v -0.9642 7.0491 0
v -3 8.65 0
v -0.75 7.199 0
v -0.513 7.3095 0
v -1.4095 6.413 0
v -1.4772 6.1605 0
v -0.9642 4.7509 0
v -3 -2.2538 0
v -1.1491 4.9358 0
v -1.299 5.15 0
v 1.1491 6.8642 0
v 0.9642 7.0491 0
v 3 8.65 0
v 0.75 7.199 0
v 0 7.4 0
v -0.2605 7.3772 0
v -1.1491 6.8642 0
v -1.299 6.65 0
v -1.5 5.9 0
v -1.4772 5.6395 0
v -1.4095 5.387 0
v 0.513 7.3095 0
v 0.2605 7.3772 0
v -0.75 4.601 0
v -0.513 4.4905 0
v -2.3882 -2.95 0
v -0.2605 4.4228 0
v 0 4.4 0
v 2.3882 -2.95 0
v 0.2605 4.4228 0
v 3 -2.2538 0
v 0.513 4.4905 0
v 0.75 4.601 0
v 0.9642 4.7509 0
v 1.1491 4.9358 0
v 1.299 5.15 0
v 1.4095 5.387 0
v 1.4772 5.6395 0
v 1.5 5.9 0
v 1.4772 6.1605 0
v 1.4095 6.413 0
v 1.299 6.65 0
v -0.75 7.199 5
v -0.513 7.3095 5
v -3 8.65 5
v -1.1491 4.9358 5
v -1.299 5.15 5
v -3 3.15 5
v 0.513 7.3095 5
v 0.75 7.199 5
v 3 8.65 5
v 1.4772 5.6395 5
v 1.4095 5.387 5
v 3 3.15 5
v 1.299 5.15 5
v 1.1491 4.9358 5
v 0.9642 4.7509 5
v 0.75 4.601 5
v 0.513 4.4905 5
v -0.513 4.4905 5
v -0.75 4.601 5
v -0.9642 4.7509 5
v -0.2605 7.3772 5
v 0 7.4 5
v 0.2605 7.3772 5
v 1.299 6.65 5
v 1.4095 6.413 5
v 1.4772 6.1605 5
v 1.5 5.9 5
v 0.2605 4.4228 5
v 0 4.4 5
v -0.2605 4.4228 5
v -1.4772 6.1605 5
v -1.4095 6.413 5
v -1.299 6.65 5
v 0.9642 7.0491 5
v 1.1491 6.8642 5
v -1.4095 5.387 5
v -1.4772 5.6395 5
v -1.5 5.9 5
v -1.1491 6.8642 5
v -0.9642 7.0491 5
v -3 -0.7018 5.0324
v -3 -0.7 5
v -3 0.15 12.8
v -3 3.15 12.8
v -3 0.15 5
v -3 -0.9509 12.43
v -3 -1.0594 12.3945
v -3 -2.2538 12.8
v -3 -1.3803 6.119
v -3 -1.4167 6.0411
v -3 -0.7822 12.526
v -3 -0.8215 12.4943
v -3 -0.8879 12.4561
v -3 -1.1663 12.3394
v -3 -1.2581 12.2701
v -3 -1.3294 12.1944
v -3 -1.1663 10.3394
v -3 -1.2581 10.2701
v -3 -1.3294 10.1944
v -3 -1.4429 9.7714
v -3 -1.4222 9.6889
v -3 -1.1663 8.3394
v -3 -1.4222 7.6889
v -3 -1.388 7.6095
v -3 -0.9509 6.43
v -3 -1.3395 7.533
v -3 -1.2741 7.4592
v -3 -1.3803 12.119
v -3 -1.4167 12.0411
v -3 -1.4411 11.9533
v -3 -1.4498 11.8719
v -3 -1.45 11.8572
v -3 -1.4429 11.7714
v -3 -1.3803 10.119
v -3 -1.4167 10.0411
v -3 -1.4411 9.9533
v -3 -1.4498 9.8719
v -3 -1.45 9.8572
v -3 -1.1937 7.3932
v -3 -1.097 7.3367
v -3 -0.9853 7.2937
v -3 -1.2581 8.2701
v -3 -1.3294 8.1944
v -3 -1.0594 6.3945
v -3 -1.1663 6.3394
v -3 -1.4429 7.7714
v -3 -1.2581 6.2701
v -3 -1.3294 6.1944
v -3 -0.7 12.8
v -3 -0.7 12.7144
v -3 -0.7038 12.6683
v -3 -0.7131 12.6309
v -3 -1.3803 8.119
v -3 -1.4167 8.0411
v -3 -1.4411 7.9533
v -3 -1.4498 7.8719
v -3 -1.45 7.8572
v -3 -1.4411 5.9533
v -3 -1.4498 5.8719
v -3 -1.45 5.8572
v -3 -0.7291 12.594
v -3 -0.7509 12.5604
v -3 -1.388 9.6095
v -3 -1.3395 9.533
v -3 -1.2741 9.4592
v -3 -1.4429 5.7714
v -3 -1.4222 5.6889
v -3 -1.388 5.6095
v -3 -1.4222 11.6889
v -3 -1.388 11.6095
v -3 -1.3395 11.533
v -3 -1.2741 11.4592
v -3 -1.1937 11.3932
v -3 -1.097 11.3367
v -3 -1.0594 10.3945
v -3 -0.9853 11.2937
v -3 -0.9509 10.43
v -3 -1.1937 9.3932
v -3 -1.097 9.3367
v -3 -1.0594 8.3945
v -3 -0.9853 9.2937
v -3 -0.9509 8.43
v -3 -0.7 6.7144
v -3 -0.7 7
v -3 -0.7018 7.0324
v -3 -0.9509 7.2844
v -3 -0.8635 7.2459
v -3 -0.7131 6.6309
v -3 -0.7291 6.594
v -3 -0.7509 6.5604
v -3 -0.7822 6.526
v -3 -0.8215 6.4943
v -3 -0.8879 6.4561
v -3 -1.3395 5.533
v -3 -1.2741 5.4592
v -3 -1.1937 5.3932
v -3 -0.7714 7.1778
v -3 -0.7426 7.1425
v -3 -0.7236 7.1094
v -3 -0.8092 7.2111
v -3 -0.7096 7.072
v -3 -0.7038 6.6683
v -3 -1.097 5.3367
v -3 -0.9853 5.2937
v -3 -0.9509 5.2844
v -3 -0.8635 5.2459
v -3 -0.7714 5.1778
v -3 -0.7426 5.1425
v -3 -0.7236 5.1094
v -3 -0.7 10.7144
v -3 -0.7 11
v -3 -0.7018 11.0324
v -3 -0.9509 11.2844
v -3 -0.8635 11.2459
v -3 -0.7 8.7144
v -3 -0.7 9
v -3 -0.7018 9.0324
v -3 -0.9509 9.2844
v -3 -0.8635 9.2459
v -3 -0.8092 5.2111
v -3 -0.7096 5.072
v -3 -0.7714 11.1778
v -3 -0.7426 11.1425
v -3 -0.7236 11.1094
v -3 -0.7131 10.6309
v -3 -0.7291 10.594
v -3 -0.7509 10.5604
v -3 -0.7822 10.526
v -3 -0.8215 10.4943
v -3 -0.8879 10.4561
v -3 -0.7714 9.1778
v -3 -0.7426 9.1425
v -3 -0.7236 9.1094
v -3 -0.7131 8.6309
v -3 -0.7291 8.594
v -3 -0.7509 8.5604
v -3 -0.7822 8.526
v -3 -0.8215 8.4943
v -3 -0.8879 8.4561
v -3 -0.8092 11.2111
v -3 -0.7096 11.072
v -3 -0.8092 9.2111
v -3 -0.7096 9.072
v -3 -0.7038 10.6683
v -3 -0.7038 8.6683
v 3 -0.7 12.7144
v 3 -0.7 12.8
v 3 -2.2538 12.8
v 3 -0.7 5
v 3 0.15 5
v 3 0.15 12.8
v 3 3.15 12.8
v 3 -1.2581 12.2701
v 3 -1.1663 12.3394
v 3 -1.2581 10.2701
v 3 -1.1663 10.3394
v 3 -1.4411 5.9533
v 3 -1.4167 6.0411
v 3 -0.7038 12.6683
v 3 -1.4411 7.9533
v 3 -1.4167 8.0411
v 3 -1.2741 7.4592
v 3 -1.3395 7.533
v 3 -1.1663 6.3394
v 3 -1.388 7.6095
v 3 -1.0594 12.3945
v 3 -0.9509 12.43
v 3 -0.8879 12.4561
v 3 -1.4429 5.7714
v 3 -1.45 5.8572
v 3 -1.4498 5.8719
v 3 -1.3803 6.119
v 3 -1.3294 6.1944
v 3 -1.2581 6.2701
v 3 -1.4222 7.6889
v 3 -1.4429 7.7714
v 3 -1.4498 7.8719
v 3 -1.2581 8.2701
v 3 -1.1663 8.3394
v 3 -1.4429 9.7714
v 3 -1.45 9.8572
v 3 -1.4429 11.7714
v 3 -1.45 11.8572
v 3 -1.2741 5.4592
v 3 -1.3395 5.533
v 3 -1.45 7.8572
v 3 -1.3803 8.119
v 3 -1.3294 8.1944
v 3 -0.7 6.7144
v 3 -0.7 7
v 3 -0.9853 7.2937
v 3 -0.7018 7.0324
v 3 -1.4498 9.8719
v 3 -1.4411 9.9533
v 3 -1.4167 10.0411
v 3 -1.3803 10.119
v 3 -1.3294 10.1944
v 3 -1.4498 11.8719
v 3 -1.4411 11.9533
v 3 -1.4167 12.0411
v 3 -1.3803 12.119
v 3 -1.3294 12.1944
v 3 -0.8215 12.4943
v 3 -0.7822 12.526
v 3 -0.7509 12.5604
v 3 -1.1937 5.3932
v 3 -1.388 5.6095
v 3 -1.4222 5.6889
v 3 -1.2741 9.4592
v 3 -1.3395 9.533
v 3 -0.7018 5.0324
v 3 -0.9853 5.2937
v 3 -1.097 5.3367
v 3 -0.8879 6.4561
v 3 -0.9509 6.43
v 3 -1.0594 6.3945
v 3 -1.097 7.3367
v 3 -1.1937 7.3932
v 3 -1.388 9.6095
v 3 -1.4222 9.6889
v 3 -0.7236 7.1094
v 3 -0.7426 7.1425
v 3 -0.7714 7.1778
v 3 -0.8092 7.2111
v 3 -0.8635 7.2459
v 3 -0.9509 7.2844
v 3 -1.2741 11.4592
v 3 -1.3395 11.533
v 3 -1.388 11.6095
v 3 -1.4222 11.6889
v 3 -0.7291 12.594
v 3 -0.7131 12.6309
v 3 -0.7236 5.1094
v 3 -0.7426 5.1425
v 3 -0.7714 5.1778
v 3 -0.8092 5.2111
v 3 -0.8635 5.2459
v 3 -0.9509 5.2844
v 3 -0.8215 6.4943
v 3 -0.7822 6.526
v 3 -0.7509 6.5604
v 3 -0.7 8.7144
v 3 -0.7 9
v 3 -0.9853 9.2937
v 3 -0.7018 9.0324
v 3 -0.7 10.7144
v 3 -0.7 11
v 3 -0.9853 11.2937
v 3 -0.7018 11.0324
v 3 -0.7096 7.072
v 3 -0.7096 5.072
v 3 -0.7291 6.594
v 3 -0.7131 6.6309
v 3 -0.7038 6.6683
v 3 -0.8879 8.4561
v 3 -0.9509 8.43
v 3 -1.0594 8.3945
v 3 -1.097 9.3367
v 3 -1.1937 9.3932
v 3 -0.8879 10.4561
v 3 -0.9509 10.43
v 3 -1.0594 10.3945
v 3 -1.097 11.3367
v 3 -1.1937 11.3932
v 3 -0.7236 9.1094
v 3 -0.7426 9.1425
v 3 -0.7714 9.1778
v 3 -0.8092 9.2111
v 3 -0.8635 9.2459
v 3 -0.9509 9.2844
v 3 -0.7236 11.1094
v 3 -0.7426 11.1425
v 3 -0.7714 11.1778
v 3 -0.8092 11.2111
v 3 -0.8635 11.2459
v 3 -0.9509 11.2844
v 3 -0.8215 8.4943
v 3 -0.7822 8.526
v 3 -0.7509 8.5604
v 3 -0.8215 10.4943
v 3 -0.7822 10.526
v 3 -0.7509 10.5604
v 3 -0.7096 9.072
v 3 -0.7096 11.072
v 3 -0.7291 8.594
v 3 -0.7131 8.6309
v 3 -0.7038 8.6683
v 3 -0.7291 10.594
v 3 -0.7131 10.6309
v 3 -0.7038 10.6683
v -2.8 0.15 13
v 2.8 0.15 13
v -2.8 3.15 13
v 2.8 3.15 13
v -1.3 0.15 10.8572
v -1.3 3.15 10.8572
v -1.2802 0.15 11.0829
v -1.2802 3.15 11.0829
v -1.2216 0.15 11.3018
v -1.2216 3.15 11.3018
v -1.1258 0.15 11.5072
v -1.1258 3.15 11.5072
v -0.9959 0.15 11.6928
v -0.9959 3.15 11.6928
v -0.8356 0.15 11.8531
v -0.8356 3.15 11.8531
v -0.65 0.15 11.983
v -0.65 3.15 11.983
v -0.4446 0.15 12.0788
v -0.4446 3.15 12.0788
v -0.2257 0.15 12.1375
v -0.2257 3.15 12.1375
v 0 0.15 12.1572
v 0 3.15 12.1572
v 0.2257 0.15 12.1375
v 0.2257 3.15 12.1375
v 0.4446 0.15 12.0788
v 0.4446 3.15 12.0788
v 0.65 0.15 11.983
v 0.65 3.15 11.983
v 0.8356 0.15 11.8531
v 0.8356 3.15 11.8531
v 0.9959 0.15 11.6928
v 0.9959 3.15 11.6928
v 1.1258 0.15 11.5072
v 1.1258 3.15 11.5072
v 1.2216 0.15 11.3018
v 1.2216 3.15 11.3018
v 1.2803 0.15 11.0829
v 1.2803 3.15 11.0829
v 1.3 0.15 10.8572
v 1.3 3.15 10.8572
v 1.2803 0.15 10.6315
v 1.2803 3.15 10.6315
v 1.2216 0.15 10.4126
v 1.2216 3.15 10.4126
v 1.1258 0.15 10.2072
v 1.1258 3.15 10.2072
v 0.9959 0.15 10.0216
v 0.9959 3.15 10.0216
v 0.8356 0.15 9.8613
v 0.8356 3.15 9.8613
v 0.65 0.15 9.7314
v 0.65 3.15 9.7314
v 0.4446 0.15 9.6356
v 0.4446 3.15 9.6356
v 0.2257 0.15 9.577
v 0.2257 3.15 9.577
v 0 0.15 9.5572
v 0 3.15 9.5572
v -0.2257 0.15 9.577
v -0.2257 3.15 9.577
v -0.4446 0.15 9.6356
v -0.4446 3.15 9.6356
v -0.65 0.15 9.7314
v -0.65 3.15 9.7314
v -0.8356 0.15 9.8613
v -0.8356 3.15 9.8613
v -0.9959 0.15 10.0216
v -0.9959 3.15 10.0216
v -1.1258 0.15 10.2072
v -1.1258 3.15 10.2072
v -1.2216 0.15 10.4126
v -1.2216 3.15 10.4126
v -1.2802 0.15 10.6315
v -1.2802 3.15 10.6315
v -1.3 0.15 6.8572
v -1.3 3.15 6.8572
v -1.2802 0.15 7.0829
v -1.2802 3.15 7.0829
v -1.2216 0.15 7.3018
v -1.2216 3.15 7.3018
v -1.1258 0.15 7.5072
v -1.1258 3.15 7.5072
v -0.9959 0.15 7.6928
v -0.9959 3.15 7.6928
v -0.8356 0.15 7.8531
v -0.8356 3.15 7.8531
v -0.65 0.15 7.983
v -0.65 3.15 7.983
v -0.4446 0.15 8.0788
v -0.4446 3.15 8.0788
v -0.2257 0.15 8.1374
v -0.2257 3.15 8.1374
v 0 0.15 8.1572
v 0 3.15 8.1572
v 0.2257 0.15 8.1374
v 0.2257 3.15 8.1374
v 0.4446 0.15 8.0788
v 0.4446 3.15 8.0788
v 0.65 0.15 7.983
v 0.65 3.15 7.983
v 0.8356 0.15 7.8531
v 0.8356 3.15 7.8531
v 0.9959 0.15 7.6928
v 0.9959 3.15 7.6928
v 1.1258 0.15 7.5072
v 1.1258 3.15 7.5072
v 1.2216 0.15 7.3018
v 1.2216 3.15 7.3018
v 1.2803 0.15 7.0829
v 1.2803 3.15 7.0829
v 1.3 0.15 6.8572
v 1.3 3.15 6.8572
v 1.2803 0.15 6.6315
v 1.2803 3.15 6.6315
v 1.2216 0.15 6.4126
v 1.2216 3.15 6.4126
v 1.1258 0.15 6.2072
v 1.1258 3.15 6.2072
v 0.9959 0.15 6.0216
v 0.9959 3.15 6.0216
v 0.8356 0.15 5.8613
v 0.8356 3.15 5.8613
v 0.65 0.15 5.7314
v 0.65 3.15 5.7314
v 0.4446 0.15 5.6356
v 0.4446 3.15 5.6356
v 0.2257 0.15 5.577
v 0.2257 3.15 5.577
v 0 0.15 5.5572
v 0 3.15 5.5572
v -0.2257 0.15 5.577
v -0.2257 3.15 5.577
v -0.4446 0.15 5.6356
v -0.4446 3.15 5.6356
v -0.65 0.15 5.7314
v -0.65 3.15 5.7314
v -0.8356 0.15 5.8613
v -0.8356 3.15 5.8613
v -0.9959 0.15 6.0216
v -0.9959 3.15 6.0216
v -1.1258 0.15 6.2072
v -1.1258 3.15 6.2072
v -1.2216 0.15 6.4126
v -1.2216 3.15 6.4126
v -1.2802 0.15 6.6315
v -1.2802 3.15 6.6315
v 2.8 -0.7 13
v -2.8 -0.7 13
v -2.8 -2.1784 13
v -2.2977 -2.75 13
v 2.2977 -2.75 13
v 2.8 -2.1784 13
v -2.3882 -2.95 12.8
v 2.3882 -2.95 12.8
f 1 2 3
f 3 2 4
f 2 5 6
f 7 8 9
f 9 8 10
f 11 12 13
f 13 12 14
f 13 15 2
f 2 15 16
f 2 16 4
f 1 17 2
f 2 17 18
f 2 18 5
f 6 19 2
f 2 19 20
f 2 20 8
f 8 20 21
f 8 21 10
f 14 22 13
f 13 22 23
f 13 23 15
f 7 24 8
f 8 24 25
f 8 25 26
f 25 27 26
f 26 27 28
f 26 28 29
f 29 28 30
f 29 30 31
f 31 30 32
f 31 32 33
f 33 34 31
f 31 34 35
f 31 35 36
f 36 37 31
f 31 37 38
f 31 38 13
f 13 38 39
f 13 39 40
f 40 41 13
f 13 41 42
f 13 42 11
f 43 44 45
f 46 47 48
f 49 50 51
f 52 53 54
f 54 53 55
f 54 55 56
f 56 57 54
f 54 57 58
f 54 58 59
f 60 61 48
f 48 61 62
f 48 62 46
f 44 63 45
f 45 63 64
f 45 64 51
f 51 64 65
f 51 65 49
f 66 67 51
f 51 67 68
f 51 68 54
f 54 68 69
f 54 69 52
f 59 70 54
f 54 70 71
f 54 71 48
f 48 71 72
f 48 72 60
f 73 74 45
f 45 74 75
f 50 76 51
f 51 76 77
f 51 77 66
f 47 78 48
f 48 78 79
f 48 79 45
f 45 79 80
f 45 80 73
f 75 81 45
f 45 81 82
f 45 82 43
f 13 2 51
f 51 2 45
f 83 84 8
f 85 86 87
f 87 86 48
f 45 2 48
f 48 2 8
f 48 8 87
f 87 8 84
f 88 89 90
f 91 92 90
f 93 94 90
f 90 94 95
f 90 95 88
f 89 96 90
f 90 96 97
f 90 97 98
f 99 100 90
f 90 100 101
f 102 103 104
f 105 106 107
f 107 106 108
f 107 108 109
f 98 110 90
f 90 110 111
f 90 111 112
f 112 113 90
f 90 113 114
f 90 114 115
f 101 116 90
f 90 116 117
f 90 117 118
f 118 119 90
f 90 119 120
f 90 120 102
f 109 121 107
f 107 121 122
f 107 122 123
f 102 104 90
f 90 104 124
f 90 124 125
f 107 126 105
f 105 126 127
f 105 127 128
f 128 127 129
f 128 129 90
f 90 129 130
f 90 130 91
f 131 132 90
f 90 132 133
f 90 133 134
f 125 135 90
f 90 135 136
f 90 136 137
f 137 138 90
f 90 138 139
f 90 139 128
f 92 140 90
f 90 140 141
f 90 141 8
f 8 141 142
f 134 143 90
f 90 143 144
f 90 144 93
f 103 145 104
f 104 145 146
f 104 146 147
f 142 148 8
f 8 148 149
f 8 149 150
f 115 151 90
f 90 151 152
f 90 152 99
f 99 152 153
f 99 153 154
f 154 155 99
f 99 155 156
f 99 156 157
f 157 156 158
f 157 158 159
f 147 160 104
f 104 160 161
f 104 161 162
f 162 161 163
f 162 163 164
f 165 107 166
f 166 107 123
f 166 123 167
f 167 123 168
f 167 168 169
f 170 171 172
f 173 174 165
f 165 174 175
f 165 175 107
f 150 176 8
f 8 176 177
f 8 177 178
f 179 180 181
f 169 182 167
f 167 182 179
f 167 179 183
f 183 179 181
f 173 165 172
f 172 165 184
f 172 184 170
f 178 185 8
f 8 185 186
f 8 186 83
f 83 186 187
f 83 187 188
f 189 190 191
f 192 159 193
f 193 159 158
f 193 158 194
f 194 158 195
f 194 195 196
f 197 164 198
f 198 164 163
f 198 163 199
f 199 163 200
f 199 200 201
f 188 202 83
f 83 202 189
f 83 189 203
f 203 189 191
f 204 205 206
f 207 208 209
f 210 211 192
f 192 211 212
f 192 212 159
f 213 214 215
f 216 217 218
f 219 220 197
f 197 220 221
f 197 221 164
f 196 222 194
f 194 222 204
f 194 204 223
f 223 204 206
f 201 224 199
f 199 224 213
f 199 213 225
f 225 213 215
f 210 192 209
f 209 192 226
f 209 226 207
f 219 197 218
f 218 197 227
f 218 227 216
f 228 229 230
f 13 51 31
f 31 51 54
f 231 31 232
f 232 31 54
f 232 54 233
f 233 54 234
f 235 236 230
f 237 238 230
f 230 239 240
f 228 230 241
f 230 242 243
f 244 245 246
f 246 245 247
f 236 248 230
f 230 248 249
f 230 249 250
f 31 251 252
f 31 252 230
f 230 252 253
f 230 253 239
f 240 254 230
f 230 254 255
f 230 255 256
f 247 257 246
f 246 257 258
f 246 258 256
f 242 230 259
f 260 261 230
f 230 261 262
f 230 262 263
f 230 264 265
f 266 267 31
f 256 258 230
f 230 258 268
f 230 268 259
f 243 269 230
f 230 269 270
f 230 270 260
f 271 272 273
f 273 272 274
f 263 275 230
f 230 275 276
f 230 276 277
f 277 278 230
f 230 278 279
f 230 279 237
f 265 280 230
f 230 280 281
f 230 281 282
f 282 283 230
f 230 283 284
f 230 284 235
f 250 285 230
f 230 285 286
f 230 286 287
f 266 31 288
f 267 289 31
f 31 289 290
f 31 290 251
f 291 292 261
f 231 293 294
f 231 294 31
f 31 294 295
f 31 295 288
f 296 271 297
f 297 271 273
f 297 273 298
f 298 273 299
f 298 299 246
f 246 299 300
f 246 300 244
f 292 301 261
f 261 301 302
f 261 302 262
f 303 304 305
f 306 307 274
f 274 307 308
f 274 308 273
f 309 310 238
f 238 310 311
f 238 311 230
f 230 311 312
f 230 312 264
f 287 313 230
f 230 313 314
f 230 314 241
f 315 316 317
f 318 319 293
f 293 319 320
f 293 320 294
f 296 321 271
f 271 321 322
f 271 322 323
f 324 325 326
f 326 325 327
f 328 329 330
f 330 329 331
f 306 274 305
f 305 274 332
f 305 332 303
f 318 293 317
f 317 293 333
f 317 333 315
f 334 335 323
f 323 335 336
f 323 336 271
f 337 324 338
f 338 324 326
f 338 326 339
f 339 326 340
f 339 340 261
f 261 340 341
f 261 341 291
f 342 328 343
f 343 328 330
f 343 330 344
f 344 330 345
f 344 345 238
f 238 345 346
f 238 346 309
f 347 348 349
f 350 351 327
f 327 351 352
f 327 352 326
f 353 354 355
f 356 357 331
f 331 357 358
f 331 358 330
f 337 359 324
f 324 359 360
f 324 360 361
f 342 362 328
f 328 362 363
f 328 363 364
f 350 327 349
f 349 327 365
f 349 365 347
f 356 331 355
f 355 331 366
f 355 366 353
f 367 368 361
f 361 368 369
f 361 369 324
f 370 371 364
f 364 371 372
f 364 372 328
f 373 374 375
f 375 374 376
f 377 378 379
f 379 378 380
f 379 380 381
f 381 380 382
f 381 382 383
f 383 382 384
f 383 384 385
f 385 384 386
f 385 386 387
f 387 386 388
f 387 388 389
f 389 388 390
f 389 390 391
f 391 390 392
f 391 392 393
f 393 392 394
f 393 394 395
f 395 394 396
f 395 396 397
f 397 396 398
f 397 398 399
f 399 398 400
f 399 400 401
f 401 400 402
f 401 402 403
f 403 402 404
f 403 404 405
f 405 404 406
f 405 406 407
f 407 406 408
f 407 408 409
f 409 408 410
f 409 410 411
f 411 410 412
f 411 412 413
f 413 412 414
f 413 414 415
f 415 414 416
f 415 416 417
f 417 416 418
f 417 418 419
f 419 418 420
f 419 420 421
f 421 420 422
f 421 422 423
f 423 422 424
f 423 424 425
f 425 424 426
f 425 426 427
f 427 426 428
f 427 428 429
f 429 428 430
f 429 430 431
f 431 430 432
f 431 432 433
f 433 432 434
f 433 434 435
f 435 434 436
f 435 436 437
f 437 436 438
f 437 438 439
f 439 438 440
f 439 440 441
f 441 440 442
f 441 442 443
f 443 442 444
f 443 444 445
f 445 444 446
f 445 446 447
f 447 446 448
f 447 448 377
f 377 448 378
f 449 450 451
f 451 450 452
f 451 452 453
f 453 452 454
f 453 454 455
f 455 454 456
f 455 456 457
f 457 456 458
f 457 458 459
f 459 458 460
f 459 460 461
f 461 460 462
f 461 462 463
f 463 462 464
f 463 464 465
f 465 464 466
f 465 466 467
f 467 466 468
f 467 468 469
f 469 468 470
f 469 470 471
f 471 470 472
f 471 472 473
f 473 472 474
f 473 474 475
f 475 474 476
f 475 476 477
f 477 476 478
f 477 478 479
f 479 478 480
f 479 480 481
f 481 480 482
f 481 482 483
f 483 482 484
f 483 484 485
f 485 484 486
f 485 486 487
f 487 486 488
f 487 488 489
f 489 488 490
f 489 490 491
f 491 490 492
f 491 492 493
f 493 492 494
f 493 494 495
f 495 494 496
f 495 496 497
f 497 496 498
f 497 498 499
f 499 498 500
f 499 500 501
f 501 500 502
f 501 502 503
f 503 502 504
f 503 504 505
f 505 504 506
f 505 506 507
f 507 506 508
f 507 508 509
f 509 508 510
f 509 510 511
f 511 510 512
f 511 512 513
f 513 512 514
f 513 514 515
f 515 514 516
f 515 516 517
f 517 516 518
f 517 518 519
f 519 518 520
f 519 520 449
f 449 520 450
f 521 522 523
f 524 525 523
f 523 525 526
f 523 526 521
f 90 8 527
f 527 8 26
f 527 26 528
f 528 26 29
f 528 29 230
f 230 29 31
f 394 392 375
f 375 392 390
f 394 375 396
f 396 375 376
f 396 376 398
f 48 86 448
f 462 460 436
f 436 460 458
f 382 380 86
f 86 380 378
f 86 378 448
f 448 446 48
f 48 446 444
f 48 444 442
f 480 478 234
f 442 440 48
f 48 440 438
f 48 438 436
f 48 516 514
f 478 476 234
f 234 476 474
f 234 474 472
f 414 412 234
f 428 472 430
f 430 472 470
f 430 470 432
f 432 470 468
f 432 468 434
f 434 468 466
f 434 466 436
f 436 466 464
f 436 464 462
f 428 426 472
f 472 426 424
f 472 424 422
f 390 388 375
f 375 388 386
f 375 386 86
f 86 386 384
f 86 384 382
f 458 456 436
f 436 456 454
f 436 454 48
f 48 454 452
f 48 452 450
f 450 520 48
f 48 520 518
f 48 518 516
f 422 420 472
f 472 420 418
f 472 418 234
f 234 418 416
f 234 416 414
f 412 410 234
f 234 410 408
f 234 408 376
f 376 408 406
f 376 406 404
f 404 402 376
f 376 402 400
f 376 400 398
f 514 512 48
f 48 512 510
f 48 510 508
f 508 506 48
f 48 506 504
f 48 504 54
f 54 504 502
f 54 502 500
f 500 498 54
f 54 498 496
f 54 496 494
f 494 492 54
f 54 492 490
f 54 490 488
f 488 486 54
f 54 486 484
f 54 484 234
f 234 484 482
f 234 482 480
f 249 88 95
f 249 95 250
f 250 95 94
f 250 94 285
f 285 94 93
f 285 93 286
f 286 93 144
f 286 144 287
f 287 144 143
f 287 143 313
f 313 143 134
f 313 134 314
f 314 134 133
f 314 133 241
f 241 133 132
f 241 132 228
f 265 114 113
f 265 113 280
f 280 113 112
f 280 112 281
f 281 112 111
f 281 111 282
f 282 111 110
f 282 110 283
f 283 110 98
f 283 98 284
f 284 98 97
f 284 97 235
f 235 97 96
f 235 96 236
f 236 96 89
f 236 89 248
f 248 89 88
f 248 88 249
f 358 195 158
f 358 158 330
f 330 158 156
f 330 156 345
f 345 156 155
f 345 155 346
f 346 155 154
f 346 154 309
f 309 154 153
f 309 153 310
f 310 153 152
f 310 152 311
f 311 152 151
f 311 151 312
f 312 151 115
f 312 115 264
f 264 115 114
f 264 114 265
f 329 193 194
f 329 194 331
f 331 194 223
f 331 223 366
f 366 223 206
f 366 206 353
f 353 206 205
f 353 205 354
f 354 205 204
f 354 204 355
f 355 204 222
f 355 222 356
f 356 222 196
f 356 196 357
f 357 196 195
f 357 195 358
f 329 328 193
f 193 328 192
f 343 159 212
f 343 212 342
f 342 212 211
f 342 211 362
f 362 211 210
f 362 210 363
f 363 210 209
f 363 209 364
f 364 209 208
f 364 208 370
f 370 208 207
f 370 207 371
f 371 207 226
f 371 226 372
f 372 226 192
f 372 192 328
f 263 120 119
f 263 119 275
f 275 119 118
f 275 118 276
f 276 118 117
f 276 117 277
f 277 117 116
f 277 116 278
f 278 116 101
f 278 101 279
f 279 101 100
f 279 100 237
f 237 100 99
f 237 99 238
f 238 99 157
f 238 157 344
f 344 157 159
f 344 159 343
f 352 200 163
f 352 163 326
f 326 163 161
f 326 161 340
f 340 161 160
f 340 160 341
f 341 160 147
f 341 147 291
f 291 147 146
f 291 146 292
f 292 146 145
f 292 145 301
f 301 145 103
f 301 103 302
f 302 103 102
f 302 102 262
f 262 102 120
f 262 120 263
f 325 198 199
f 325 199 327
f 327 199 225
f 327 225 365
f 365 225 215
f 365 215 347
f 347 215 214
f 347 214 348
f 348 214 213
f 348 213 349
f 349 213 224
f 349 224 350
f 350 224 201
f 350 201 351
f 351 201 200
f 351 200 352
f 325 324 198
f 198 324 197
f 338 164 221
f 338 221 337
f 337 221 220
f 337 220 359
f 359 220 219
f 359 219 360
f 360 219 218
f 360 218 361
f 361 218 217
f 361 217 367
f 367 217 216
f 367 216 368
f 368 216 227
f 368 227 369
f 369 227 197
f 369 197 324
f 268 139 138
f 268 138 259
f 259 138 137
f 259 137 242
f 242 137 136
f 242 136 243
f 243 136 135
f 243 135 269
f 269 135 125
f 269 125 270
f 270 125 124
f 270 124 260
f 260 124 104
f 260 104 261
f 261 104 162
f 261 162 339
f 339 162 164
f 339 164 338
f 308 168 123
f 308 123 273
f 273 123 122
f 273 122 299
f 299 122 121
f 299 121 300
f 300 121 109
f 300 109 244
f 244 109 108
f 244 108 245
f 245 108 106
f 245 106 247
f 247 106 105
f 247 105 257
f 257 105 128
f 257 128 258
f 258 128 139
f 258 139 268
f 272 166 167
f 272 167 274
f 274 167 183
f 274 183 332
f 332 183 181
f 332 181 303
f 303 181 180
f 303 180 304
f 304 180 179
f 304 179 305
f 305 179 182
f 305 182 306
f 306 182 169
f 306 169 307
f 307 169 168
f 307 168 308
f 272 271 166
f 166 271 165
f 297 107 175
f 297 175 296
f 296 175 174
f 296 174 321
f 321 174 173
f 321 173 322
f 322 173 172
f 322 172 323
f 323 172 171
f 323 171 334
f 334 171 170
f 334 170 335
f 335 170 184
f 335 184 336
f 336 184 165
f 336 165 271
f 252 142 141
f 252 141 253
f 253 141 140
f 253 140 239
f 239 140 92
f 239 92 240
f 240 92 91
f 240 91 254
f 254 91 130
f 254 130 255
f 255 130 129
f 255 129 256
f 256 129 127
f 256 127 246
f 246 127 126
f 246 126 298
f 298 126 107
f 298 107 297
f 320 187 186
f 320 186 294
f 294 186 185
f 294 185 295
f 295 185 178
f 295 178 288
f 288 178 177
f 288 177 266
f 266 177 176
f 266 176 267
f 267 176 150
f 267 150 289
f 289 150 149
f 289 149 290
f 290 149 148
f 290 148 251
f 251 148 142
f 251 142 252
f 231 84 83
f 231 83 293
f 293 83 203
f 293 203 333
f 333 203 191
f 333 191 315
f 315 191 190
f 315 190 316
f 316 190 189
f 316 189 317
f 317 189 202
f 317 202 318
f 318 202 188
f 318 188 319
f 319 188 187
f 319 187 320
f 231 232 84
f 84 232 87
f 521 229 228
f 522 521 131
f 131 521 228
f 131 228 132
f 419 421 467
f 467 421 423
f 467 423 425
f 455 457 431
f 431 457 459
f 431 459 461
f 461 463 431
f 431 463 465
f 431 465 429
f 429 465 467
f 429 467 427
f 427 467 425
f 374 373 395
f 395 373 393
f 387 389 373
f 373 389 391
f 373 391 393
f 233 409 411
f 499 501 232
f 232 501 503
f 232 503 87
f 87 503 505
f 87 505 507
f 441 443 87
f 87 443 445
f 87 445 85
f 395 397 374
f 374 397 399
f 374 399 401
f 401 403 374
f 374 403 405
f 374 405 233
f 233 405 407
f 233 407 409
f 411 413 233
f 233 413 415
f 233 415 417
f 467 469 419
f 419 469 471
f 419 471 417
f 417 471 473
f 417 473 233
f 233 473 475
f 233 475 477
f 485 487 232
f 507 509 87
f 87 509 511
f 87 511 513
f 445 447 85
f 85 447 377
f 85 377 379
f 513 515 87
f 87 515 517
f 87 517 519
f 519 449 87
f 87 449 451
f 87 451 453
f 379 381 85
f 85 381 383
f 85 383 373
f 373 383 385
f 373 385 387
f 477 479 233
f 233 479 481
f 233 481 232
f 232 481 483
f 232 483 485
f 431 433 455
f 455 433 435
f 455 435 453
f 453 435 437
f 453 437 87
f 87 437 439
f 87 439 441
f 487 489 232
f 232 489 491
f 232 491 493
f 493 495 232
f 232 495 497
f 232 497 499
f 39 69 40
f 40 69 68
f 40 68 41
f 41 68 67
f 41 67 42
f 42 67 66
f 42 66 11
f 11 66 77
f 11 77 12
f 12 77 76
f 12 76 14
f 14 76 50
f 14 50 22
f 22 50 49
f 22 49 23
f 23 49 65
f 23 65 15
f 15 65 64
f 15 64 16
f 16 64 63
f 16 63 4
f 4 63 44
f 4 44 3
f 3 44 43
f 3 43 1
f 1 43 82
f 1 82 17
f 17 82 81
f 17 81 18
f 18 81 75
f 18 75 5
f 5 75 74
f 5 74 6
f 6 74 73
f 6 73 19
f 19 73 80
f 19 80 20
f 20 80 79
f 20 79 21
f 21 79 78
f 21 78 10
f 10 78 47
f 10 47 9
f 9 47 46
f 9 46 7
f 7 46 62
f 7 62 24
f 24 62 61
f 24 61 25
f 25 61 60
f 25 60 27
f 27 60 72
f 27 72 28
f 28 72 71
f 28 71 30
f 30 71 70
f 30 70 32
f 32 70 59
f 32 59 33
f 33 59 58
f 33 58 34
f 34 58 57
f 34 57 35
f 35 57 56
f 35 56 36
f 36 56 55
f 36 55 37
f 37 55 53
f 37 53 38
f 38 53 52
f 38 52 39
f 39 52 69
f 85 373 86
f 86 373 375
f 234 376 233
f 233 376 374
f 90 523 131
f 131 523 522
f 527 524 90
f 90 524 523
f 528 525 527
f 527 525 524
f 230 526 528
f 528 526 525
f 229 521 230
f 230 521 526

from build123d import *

# Parameters (mm, degrees)
BOSS_EXTRUDE1_DEPTH     = 13
SKETCH6_W               = 6
SKETCH6_H               = 5
BOSS_EXTRUDE4_DEPTH     = 5.6
SKETCH16_W              = 6
SKETCH16_H              = 8
BOSS_EXTRUDE5_DEPTH     = 0.1
CUT_EXTRUDE6_DEPTH      = 4
CUT_EXTRUDE6_DEPTH_BACK = 3.6
SKETCH15_R              = 1.3
CUT_EXTRUDE7_DEPTH      = 8.7202
CUT_EXTRUDE8_START      = -0.2202
SKETCH19_W              = 6
SKETCH19_H              = 8
SKETCH19_R              = 1.3
CUT_EXTRUDE8_DEPTH      = 0.2202
SKETCH12_R              = 1.5
CUT_EXTRUDE5_DEPTH      = 6
CHAMFER1_SIZE           = 0.2
SKETCH20_W              = 5
SKETCH20_H              = 5.5
BOSS_EXTRUDE6_DEPTH     = 0.5
SKETCH21_W              = 5
SKETCH21_H              = 5.5
BOSS_EXTRUDE7_DEPTH     = 0.5
CHAMFER2_SIZE           = 0.2
CROQUIS1_W              = 5
CROQUIS1_H              = 5.5
CORTAR_EXTRUIR1_DEPTH   = 0.5
CROQUIS2_W              = 5
CROQUIS2_H              = 5.5
CORTAR_EXTRUIR2_DEPTH   = 1


with BuildPart() as part:
    # Sketch1 → Boss-Extrude1 (new body)
    with BuildSketch(Plane.XY):
        Polygon((3, 3.05), (3, -2.253801214), (2.388188946, -2.95), (-2.388188946, -2.95), (-3, -2.253801214), (-3, 3.05), align=None)
    extrude(amount=BOSS_EXTRUDE1_DEPTH)

    # Sketch6 → Boss-Extrude4 (add)
    with BuildSketch(Plane(origin=(0, 3.05, 0), x_dir=(1, 0, 0), z_dir=(0, 1, 0))):
        with Locations((0, -2.5)):
            Rectangle(SKETCH6_W, SKETCH6_H)
    extrude(amount=BOSS_EXTRUDE4_DEPTH)

    # Sketch16 → Boss-Extrude5 (add)
    with BuildSketch(Plane(origin=(0, 3.05, 0), x_dir=(1, 0, 0), z_dir=(0, 1, 0))):
        with Locations((0, -9)):
            Rectangle(SKETCH16_W, SKETCH16_H)
    extrude(amount=BOSS_EXTRUDE5_DEPTH)

    # Sketch18 → Cut-Extrude6 (cut, two sides: drawn at the far end of the back side and taken through both)
    with BuildSketch(Plane(origin=(0, 0, 0), x_dir=(0, 0, -1), z_dir=(1, 0, 0)).offset(-CUT_EXTRUDE6_DEPTH_BACK)):
        with BuildLine():
            Line((-8.8572, -0.0702), (-12.8572, -0.0702))
            Line((-12.8572, -0.0702), (-13, -0.0702))
            Line((-13, -0.0702), (-13, -0.7))
            Line((-13, -0.7), (-12.8572, -0.7))
            Line((-12.8572, -0.7), (-12.7144, -0.7))
            add(Edge.make_bspline(
                [(-12.7144, -0.7), (-12.5198, -0.7), (-12.43, -0.9509)],
                knots=[0.103448276, 0.103448276, 0.103448276, 0.137931034, 0.137931034, 0.137931034], degree=2))
            add(Edge.make_bspline(
                [(-12.43, -0.9509), (-12.3594, -1.2388), (-12.13, -1.45), (-11.8572, -1.45)],
                knots=[0.137931034, 0.137931034, 0.137931034, 0.137931034, 0.172413793, 0.172413793, 0.172413793, 0.172413793], degree=3))
            add(Edge.make_bspline(
                [(-11.8572, -1.45), (-11.5844, -1.45), (-11.355, -1.2388), (-11.2844, -0.9509)],
                knots=[0.172413793, 0.172413793, 0.172413793, 0.172413793, 0.206896552, 0.206896552, 0.206896552, 0.206896552], degree=3))
            add(Edge.make_bspline(
                [(-11.2844, -0.9509), (-11.1946, -0.7), (-11, -0.7)],
                knots=[0.206896552, 0.206896552, 0.206896552, 0.24137931, 0.24137931, 0.24137931], degree=2))
            Line((-11, -0.7), (-10.8572, -0.7))
            Line((-10.8572, -0.7), (-10.7144, -0.7))
            add(Edge.make_bspline(
                [(-10.7144, -0.7), (-10.5198, -0.7), (-10.43, -0.9509)],
                knots=[0.310344828, 0.310344828, 0.310344828, 0.344827586, 0.344827586, 0.344827586], degree=2))
            add(Edge.make_bspline(
                [(-10.43, -0.9509), (-10.3594, -1.2388), (-10.13, -1.45), (-9.8572, -1.45)],
                knots=[0.344827586, 0.344827586, 0.344827586, 0.344827586, 0.379310345, 0.379310345, 0.379310345, 0.379310345], degree=3))
            add(Edge.make_bspline(
                [(-9.8572, -1.45), (-9.5844, -1.45), (-9.355, -1.2388), (-9.2844, -0.9509)],
                knots=[0.379310345, 0.379310345, 0.379310345, 0.379310345, 0.413793103, 0.413793103, 0.413793103, 0.413793103], degree=3))
            add(Edge.make_bspline(
                [(-9.2844, -0.9509), (-9.1946, -0.7), (-9, -0.7)],
                knots=[0.413793103, 0.413793103, 0.413793103, 0.448275862, 0.448275862, 0.448275862], degree=2))
            Line((-9, -0.7), (-8.8572, -0.7))
            Line((-8.8572, -0.7), (-8.7144, -0.7))
            add(Edge.make_bspline(
                [(-8.7144, -0.7), (-8.5198, -0.7), (-8.43, -0.9509)],
                knots=[0.517241379, 0.517241379, 0.517241379, 0.551724138, 0.551724138, 0.551724138], degree=2))
            add(Edge.make_bspline(
                [(-8.43, -0.9509), (-8.3594, -1.2388), (-8.13, -1.45), (-7.8572, -1.45)],
                knots=[0.551724138, 0.551724138, 0.551724138, 0.551724138, 0.586206897, 0.586206897, 0.586206897, 0.586206897], degree=3))
            add(Edge.make_bspline(
                [(-7.8572, -1.45), (-7.5844, -1.45), (-7.355, -1.2388), (-7.2844, -0.9509)],
                knots=[0.586206897, 0.586206897, 0.586206897, 0.586206897, 0.620689655, 0.620689655, 0.620689655, 0.620689655], degree=3))
            add(Edge.make_bspline(
                [(-7.2844, -0.9509), (-7.1946, -0.7), (-7, -0.7)],
                knots=[0.620689655, 0.620689655, 0.620689655, 0.655172414, 0.655172414, 0.655172414], degree=2))
            Line((-7, -0.7), (-6.8572, -0.7))
            Line((-6.8572, -0.7), (-6.7144, -0.7))
            add(Edge.make_bspline(
                [(-6.7144, -0.7), (-6.5198, -0.7), (-6.43, -0.9509)],
                knots=[0.724137931, 0.724137931, 0.724137931, 0.75862069, 0.75862069, 0.75862069], degree=2))
            add(Edge.make_bspline(
                [(-6.43, -0.9509), (-6.3594, -1.2388), (-6.13, -1.45), (-5.8572, -1.45)],
                knots=[0.75862069, 0.75862069, 0.75862069, 0.75862069, 0.793103448, 0.793103448, 0.793103448, 0.793103448], degree=3))
            add(Edge.make_bspline(
                [(-5.8572, -1.45), (-5.5844, -1.45), (-5.355, -1.2388), (-5.2844, -0.9509)],
                knots=[0.793103448, 0.793103448, 0.793103448, 0.793103448, 0.827586207, 0.827586207, 0.827586207, 0.827586207], degree=3))
            add(Edge.make_bspline(
                [(-5.2844, -0.9509), (-5.1946, -0.7), (-5, -0.7)],
                knots=[0.827586207, 0.827586207, 0.827586207, 0.862068966, 0.862068966, 0.862068966], degree=2))
            Line((-5, -0.7), (-5, -0.0702))
            Line((-5, -0.0702), (-8.8572, -0.0702))
        make_face()
    extrude(amount=CUT_EXTRUDE6_DEPTH + CUT_EXTRUDE6_DEPTH_BACK, mode=Mode.SUBTRACT)

    # Sketch15 → Cut-Extrude7 (cut)
    with BuildSketch(Plane(origin=(0, 8.65, 0), x_dir=(1, 0, 0), z_dir=(0, 1, 0))):
        with Locations(Location((0, -10.8572, 0), (0, 0, 180))):
            Circle(SKETCH15_R)
        with Locations(Location((0, -6.8572, 0), (0, 0, 180))):
            Circle(SKETCH15_R)
    extrude(amount=-CUT_EXTRUDE7_DEPTH, mode=Mode.SUBTRACT)

    # Sketch19 → Cut-Extrude8 (cut)
    with BuildSketch(Plane.XZ.offset(0.0702).offset(CUT_EXTRUDE8_START)):
        with Locations((0, 9)):
            Rectangle(SKETCH19_W, SKETCH19_H)
        with Locations(Location((0, 10.8572, 0), (0, 0, 180))):
            Circle(SKETCH19_R, mode=Mode.SUBTRACT)
        with Locations(Location((0, 6.8572, 0), (0, 0, 180))):
            Circle(SKETCH19_R, mode=Mode.SUBTRACT)
    extrude(amount=CUT_EXTRUDE8_DEPTH, mode=Mode.SUBTRACT)

    # Sketch12 → Cut-Extrude5 (cut)
    with BuildSketch(Plane.XY.offset(5)):
        with Locations((0, 5.9)):
            Circle(SKETCH12_R)
    extrude(amount=-CUT_EXTRUDE5_DEPTH, mode=Mode.SUBTRACT)

    # Chamfer1
    chamfer1_edges = [part.edges().sort_by_distance(p)[0] for p in [
        (-2.694094473, -2.601900607, 13),
        (0, -2.95, 13),
        (2.694094473, -2.601900607, 13),
        (3, 1.65, 13),
        (3, -1.476900607, 13),
        (-3, -1.476900607, 13),
        (-3, 1.65, 13),
    ]]
    chamfer(chamfer1_edges, length=CHAMFER1_SIZE)

    # Sketch20 → Boss-Extrude6 (add)
    with BuildSketch(Plane(origin=(3, 0, 0), x_dir=(0, 0, -1), z_dir=(1, 0, 0))):
        with Locations((-2.5, 5.9)):
            Rectangle(SKETCH20_W, SKETCH20_H)
    extrude(amount=BOSS_EXTRUDE6_DEPTH)

    # Sketch21 → Boss-Extrude7 (add)
    with BuildSketch(Plane.ZY.offset(3)):
        with Locations((2.5, 5.9)):
            Rectangle(SKETCH21_W, SKETCH21_H)
    extrude(amount=BOSS_EXTRUDE7_DEPTH)

    # Chamfer2
    chamfer2_edges = [part.edges().sort_by_distance(p)[0] for p in [
        (3.5, 5.9, 5),
        (-3.5, 5.9, 5),
    ]]
    chamfer(chamfer2_edges, length=CHAMFER2_SIZE)

    # Croquis1 → Cortar-Extruir1 (cut)
    with BuildSketch(Plane.ZY.offset(3.5)):
        with Locations((2.5, 5.9)):
            Rectangle(CROQUIS1_W, CROQUIS1_H)
    extrude(amount=-CORTAR_EXTRUIR1_DEPTH, mode=Mode.SUBTRACT)

    # Croquis2 → Cortar-Extruir2 (cut)
    with BuildSketch(Plane(origin=(3, 0, 0), x_dir=(0, 0, -1), z_dir=(1, 0, 0))):
        with Locations((-2.5, 5.9)):
            Rectangle(CROQUIS2_W, CROQUIS2_H)
    extrude(amount=CORTAR_EXTRUIR2_DEPTH, mode=Mode.SUBTRACT)


solid = part.part
